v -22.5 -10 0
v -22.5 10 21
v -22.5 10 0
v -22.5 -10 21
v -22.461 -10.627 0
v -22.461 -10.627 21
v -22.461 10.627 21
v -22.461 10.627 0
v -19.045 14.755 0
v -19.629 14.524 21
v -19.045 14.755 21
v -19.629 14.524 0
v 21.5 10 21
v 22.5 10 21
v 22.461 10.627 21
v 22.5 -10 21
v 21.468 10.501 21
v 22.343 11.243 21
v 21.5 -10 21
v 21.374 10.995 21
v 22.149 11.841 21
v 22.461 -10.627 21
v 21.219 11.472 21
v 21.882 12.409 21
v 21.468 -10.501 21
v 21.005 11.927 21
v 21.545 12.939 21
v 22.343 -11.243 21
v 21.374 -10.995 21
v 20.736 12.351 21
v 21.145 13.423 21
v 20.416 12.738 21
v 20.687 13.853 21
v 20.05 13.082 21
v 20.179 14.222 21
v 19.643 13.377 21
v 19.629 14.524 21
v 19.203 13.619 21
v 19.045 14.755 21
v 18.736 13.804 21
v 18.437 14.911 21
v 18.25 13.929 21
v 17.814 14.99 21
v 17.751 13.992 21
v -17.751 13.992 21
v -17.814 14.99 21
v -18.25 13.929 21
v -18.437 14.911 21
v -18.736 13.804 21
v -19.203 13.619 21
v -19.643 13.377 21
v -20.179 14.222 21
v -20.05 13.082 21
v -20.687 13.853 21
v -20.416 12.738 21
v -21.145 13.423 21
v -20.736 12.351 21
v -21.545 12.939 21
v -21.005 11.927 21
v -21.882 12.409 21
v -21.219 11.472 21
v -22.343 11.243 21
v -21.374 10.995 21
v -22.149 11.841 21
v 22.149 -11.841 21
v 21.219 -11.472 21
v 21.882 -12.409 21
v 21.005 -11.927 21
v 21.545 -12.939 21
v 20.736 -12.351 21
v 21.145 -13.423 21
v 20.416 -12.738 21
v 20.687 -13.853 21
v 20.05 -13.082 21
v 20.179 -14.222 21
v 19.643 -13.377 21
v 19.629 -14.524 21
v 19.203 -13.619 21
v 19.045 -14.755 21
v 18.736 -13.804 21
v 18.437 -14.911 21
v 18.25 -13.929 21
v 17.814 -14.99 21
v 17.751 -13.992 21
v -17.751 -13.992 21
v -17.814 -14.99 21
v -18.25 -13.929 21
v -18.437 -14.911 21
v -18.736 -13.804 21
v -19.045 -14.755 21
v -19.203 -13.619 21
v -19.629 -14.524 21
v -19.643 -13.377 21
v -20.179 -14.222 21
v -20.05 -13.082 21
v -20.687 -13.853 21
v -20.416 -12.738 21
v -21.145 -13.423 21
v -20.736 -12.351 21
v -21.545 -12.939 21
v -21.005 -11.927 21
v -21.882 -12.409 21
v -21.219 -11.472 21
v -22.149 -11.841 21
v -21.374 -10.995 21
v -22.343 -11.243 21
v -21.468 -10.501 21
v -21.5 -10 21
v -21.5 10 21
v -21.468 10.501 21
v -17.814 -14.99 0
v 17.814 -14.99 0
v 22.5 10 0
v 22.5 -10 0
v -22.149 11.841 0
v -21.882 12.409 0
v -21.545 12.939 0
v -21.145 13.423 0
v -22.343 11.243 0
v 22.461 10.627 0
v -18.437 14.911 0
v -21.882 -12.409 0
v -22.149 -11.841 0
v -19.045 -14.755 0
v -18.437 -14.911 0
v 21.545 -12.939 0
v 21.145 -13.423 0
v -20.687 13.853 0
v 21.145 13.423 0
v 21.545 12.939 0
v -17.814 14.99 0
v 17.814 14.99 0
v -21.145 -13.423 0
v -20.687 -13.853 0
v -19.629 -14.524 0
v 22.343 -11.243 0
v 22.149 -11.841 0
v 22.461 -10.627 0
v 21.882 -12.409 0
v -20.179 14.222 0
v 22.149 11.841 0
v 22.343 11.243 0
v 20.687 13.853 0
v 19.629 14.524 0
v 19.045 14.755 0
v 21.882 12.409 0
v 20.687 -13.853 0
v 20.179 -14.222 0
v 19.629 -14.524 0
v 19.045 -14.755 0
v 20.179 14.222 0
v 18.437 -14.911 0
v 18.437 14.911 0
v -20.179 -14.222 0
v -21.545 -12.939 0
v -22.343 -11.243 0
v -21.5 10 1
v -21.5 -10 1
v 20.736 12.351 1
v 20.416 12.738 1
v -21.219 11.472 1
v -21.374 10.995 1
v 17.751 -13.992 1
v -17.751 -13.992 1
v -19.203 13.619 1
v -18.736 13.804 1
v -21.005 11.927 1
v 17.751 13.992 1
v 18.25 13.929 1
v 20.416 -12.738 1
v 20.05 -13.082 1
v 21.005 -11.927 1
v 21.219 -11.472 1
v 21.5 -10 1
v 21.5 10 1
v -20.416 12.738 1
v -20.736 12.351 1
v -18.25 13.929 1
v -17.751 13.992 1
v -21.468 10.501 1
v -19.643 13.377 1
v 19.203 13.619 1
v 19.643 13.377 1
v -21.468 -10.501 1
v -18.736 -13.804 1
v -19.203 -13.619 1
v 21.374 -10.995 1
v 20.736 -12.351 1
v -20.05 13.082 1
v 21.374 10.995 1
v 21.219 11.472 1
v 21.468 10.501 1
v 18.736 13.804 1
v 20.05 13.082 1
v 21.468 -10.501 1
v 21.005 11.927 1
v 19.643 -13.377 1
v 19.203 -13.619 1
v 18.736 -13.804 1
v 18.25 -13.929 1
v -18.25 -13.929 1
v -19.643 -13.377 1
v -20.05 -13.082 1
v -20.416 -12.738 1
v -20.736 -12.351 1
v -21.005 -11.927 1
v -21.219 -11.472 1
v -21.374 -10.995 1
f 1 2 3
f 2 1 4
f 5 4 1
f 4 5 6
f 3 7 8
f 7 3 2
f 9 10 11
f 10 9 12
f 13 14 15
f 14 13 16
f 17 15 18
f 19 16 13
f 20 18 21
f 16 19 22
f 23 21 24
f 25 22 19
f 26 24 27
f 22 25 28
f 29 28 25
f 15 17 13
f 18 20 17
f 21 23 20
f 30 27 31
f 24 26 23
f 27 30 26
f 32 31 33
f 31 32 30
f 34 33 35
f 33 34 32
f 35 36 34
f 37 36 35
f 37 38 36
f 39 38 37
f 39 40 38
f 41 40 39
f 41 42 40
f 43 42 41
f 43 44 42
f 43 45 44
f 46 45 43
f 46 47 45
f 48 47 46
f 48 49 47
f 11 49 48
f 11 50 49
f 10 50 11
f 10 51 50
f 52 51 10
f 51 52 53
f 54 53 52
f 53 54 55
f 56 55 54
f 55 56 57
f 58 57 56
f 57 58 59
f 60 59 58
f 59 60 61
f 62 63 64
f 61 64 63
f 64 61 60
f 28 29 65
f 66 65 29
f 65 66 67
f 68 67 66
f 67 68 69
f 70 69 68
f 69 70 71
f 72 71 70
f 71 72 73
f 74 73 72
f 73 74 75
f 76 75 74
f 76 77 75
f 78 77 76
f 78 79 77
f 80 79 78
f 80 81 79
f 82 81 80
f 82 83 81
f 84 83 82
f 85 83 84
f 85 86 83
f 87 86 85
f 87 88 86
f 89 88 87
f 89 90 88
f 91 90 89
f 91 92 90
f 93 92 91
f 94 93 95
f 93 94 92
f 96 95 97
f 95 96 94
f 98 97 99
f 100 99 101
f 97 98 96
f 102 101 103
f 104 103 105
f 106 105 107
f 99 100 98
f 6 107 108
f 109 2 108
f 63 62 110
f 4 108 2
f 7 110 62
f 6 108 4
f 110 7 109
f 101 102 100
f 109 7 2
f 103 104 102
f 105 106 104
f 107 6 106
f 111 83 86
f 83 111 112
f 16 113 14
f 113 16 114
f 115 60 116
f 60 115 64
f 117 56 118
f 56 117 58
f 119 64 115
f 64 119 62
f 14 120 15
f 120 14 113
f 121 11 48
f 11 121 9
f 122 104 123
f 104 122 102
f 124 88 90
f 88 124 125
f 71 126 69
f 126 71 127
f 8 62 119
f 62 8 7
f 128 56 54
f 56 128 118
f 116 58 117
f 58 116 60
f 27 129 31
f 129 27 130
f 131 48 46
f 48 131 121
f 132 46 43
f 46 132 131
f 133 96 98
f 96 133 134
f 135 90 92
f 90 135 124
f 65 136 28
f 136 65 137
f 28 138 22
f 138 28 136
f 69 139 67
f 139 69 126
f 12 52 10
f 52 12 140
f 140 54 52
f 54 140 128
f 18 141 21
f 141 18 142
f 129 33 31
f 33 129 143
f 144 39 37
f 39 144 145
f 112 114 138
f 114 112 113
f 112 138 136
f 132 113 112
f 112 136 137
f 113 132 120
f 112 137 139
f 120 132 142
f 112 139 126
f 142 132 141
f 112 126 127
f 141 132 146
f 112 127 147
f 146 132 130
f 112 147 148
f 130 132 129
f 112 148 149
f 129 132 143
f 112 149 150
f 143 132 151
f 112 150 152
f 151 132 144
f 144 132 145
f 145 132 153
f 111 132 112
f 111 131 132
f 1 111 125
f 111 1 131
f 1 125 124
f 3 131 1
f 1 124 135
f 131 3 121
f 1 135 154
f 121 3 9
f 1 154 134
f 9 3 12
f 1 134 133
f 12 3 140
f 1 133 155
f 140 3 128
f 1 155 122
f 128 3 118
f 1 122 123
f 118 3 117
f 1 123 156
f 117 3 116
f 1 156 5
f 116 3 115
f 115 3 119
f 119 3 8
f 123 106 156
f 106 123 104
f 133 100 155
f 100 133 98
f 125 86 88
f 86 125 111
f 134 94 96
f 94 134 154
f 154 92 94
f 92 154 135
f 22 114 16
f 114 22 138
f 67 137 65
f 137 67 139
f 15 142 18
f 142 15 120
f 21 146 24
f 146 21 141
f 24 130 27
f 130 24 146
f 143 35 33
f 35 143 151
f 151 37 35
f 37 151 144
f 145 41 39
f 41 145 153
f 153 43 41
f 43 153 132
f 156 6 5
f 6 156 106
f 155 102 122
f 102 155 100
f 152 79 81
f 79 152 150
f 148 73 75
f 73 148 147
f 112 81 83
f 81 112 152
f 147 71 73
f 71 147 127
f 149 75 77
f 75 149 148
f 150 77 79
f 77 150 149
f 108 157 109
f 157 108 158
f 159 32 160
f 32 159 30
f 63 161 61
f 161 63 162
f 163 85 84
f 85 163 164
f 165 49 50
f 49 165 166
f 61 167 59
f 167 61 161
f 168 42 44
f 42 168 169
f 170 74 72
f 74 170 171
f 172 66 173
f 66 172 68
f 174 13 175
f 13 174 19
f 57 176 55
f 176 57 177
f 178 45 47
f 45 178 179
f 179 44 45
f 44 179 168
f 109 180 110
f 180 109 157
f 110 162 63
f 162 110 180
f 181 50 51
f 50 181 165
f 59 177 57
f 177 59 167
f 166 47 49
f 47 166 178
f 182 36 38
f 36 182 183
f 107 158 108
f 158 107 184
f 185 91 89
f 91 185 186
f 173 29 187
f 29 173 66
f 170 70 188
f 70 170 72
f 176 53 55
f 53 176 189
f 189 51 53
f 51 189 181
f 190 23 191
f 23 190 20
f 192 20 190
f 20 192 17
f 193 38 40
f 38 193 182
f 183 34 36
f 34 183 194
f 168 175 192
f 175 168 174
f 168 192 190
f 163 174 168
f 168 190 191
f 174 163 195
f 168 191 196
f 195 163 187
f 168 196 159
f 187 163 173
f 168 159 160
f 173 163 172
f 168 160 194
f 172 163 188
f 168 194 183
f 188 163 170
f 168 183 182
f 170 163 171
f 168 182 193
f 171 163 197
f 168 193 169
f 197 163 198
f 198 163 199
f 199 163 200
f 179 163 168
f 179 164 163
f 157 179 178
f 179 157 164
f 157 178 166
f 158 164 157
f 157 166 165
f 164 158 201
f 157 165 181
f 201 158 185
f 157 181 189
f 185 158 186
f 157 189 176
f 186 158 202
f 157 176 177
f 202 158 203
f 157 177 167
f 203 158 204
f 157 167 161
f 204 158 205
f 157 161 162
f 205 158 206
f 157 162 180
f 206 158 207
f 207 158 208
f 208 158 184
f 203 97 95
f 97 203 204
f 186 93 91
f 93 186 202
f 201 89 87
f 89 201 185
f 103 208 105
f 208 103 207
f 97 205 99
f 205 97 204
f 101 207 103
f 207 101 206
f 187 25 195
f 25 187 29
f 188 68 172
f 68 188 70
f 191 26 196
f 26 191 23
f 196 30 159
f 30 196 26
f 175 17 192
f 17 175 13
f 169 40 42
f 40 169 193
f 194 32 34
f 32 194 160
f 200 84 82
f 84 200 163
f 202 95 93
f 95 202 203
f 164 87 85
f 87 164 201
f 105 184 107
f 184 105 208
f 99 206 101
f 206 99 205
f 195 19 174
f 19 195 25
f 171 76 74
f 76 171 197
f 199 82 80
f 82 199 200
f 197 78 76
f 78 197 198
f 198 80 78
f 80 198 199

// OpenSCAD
$fn = 50;


difference() {
	union() {
		hull() {
			translate(v = [-17.5000000000, 10.0000000000, 0]) {
				cylinder(h = 21, r = 5);
			}
			translate(v = [17.5000000000, 10.0000000000, 0]) {
				cylinder(h = 21, r = 5);
			}
			translate(v = [-17.5000000000, -10.0000000000, 0]) {
				cylinder(h = 21, r = 5);
			}
			translate(v = [17.5000000000, -10.0000000000, 0]) {
				cylinder(h = 21, r = 5);
			}
		}
	}
	union() {
		translate(v = [0, 0, 1]) {
			#hull() {
				translate(v = [-17.5000000000, 10.0000000000, 0]) {
					cylinder(h = 20, r = 4);
				}
				translate(v = [17.5000000000, 10.0000000000, 0]) {
					cylinder(h = 20, r = 4);
				}
				translate(v = [-17.5000000000, -10.0000000000, 0]) {
					cylinder(h = 20, r = 4);
				}
				translate(v = [17.5000000000, -10.0000000000, 0]) {
					cylinder(h = 20, r = 4);
				}
			}
		}
	}
}
